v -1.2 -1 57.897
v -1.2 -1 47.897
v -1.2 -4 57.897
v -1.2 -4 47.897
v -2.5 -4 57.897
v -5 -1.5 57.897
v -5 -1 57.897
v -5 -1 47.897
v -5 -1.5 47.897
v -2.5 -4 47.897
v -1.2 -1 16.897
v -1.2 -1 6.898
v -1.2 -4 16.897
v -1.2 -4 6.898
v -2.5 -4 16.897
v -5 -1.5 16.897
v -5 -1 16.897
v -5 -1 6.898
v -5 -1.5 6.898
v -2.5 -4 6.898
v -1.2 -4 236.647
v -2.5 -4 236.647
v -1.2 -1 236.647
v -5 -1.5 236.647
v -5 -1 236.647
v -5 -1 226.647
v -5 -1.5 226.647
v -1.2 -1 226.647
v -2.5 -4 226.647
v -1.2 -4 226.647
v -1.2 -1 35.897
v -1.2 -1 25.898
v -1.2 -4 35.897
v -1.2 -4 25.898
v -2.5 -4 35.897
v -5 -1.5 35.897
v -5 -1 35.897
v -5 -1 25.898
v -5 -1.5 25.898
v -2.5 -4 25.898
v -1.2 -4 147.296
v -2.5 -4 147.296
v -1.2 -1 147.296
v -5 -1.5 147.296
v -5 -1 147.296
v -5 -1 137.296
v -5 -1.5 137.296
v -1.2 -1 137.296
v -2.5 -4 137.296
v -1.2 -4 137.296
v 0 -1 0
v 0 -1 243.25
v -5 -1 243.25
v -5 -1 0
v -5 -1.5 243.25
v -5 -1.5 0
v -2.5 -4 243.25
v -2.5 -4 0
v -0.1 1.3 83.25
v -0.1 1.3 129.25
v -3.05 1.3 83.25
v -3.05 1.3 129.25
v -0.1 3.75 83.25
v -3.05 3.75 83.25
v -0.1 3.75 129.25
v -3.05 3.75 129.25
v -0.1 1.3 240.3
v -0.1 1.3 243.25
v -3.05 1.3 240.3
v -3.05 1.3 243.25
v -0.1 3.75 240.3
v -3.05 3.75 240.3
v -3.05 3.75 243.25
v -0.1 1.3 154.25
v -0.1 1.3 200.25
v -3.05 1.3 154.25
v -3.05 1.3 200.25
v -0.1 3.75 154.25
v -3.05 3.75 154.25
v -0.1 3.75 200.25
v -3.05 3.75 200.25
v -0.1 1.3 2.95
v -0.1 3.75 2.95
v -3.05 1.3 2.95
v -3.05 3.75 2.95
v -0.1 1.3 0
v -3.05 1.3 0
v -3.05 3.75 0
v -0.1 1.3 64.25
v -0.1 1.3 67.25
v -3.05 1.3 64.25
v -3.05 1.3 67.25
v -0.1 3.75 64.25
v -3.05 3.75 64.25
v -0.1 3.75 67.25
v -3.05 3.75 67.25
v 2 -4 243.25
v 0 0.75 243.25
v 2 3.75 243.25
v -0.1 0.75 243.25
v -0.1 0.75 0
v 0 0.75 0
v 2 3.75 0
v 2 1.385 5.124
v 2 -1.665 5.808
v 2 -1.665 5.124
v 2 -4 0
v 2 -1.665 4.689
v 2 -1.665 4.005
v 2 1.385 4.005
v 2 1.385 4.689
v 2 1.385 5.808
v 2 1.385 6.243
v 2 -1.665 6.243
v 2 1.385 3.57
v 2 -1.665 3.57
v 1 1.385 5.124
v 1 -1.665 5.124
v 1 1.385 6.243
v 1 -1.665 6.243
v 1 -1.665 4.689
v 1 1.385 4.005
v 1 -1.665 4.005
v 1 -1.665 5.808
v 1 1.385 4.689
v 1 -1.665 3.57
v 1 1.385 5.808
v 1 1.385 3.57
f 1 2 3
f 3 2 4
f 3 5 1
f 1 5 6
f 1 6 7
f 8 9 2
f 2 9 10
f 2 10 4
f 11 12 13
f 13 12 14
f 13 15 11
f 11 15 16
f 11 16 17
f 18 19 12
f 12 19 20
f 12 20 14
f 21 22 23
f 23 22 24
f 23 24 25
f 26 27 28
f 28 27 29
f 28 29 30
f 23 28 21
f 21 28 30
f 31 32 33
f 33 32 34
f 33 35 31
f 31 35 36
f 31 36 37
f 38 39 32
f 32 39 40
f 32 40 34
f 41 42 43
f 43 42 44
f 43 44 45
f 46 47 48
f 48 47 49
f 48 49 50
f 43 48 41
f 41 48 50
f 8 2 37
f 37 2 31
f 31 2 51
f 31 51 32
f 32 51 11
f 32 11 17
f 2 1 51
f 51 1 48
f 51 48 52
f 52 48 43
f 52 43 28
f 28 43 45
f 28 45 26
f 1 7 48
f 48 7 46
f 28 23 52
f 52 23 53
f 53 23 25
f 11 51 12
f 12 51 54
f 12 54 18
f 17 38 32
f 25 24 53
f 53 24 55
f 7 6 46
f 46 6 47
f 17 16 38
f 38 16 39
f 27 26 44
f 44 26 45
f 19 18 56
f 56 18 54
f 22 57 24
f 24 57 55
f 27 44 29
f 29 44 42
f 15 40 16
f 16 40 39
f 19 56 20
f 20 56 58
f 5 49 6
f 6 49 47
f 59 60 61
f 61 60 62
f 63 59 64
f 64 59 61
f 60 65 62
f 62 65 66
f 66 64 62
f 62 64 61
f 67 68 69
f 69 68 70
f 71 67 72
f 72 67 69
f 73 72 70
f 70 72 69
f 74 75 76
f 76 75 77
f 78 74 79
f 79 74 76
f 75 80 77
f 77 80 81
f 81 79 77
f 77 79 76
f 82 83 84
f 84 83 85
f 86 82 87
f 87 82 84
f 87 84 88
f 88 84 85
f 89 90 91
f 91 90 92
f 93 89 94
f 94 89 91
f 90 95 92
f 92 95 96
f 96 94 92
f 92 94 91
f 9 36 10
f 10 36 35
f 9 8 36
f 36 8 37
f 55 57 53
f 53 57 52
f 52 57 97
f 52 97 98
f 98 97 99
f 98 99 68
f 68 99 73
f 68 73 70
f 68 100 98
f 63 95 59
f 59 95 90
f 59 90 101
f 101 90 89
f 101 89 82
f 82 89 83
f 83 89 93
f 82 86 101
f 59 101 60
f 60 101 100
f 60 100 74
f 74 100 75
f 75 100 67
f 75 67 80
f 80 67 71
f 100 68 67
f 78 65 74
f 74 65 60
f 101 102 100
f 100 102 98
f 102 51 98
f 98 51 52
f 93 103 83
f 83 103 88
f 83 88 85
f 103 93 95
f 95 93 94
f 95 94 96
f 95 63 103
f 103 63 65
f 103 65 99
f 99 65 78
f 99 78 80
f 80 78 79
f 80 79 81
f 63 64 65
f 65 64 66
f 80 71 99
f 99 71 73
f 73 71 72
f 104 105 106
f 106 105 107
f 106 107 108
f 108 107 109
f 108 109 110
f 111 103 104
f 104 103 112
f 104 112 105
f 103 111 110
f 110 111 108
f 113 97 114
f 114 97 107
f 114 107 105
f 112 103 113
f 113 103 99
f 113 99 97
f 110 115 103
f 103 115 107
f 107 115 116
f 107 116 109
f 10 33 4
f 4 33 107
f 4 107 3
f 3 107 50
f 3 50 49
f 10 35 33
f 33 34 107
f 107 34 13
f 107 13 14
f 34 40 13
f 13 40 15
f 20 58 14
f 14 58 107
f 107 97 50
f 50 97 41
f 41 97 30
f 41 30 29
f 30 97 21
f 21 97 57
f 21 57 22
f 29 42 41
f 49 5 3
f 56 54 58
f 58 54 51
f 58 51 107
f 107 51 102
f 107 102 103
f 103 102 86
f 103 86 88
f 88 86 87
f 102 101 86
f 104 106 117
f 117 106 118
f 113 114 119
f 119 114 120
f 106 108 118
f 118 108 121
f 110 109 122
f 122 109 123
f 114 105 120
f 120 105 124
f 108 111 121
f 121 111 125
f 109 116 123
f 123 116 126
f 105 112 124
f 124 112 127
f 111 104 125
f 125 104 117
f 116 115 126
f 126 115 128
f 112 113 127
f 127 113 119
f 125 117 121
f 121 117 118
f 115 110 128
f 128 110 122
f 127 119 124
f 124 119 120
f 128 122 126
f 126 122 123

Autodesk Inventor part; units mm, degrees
ref_plane "YZ Plane" through (0, 0, 0) normal (1, 0, 0) x (0, 1, 0)
ref_plane "XZ Plane" through (0, 0, 0) normal (0, 1, 0) x (-1, 0, 0)
ref_plane "XY Plane" through (0, 0, 0) normal (0, 0, 1) x (1, 0, 0)
sketch "Sketch1" plane through (0, 0, 0) normal (0, 0, 1) x (1, 0, 0)
  line L0 (0, 3.75) -> (2, 3.75)
  line L1 (2, 3.75) -> (2, -4)
  line L2 (2, -4) -> (0, -4)
  line L3 (0, -4) -> (0, 3.75) construction
  line L4 (0, -4) -> (-5, -4)
  line L5 (-5, -4) -> (-5, -1)
  line L6 (-5, -1) -> (0, -1)
  line L7 (0, 3.75) -> (-1, 3.75)
  line L8 (-1, 3.75) -> (-1, 0.75)
  line L9 (-1, 0.75) -> (0, 0.75)
  line L10 (0, 0.75) -> (0, 3.75) construction
  line L11 (0, 0.75) -> (0, -1)
  point P0 (0, 0)
  point P1 (0, -0.125)
  point P2 (1, 3.75)
  dimension "d0" = 4
  dimension "d1" = 2
  dimension "d5" = 5
  dimension "d6" = 1.75
  dimension "d7" = 3
  dimension "d11" = 3
  dimension "d12" = 3
extrude "Extrusion1" add sketch "Sketch1" along normal blind 243.25
sketch "Sketch2" plane through (-1, 0.75, 0) normal (-1, 0, 0) x (0, 0, 1)
  line L0 (0, 3) -> (0, 0) projected
  line L1 (0, 0) -> (243.25, 0) projected
  line L2 (243.25, 3) -> (243.25, 0) projected
  line L3 (0, 3) -> (243.25, 3) projected
  point P0 (0, -0.75)
extrude "Extrusion2" cut sketch "Sketch2" against normal blind 0.9
chamfer "Chamfer1" distance 2.5 angle 45 1 edges at (-5, -4, 121.625)
sketch "Sketch3" plane through (-0.1, 0.75, 0) normal (-1, 0, 0) x (0, 0, 1)
  line L0 (0, 3) -> (243.25, 3) projected
  line L1 (0, 3) -> (2.95, 3)
  line L2 (2.95, 3) -> (2.95, 0.55)
  line L3 (2.95, 0.55) -> (0, 0.55)
  line L4 (0, 0.55) -> (0, 3)
  line L5 (59.8466, 2.85) -> (59.8466, 0.85) construction
  line L6 (243.25, 3) -> (243.25, 0) projected
  line L7 (243.25, 3) -> (240.3, 3)
  line L8 (240.3, 3) -> (240.3, 0.55)
  line L9 (240.3, 0.55) -> (243.25, 0.55)
  line L10 (243.25, 0.55) -> (243.25, 3)
  line L11 (200.25, 3) -> (154.25, 3)
  line L12 (154.25, 3) -> (154.25, 0.55)
  line L13 (154.25, 0.55) -> (200.25, 0.55)
  line L14 (200.25, 0.55) -> (200.25, 3)
  line L15 (129.25, 3) -> (83.25, 3)
  line L16 (83.25, 3) -> (83.25, 0.55)
  line L17 (83.25, 0.55) -> (129.25, 0.55)
  line L18 (129.25, 0.55) -> (129.25, 3)
  line L19 (0, 3) -> (243.25, 3) projected
  line L20 (67.25, 3) -> (64.25, 3)
  line L21 (64.25, 3) -> (64.25, 0.55)
  line L22 (64.25, 0.55) -> (67.25, 0.55)
  line L23 (67.25, 0.55) -> (67.25, 3)
  point P0 (0, -0.75)
  point P1 (59.8466, 3)
  dimension "d18" = 2.45
  dimension "d19" = 2.95
  dimension "d22" = 2.45
  dimension "d23" = 2.95
  dimension "d44" = 43
  dimension "d45" = 160
  dimension "d46" = 114
  dimension "d47" = 89
  dimension "d48" = 176
  dimension "d49" = 179
extrude "Extrusion3" add sketch "Sketch3" along normal blind 2.95
sketch "Sketch4" plane through (2, -4, 0) normal (0, -1, 0) x (1, 0, 0)
  circle A0 centre (-4.4525, -10.6025) radius 0.725 construction
  line L0 (-3.2, -15.005) -> (-3.2, -1) construction
  line L1 (-4.5, 0) -> (0, 0) construction
  line L2 (-4.5, 243.25) -> (0, 243.25) construction
  circle A1 centre (-10.2025, 230.7475) radius 2.55 construction
  circle A2 centre (-10.1275, 141.3958) radius 2.55 construction
  circle A3 centre (-10.2025, 51.9975) radius 2.55 construction
  circle A4 centre (-10.2025, 29.9975) radius 2.55 construction
  circle A5 centre (-10.2025, 10.9975) radius 2.55 construction
  line L3 (-3.2, 6.8975) -> (-7, 6.8975)
  line L4 (-7, 6.8975) -> (-7, 16.8975)
  line L5 (-7, 16.8975) -> (-3.2, 16.8975)
  line L6 (-3.2, 16.8975) -> (-3.2, 6.8975)
  line L7 (-3.2, 25.8975) -> (-7, 25.8975)
  line L8 (-7, 25.8975) -> (-7, 35.8975)
  line L9 (-7, 35.8975) -> (-3.2, 35.8975)
  line L10 (-3.2, 35.8975) -> (-3.2, 25.8975)
  line L11 (-3.2, 47.8975) -> (-7, 47.8975)
  line L12 (-7, 47.8975) -> (-7, 57.8975)
  line L13 (-7, 57.8975) -> (-3.2, 57.8975)
  line L14 (-3.2, 57.8975) -> (-3.2, 47.8975)
  line L15 (-3.2, 137.2957) -> (-7, 137.2957)
  line L16 (-7, 137.2957) -> (-7, 147.2957)
  line L17 (-7, 147.2957) -> (-3.2, 147.2957)
  line L18 (-3.2, 147.2957) -> (-3.2, 137.2957)
  line L19 (-2.1, 243.25) -> (-2.1, 0) projected
  line L20 (-2.1, 236.6475) -> (-2.1, 226.6475)
  circle A6 centre (-10.2025, -8.0025) radius 2.55 construction
  circle A7 centre (-5.5025, -3.6025) radius 0.725 construction
  line L21 (-3.2, -12.1025) -> (-10.2025, -12.1025) construction
  line L22 (-10.2025, -12.1025) -> (-10.2025, -2.1025) construction
  line L23 (-10.2025, -2.1025) -> (-3.2, -2.1025) construction
  line L24 (-7, 243.25) -> (-7, 0) construction
  line L25 (-7, 0) -> (-7, 243.25) projected
  line L26 (-7, 226.6475) -> (-3.2, 226.6475)
  line L27 (-3.2, 226.6475) -> (-3.2, 236.6475)
  line L28 (-3.2, 236.6475) -> (-7, 236.6475)
  line L29 (-7, 236.6475) -> (-7, 226.6475)
  point P0 (-2, 0)
  dimension "d26" = 1.5
  dimension "d27" = 1.5
  dimension "d28" = 4.1
  dimension "d29" = 5.9
  dimension "d30" = 4.1
  dimension "d31" = 5.9
  dimension "d32" = 4.1
  dimension "d33" = 5.9
  dimension "d34" = 4.1
  dimension "d35" = 5.9
  dimension "d36" = 4.1
  dimension "d37" = 5.9
  dimension "d40" = 4.1
  dimension "d41" = 5.9
extrude "Extrusion4" cut sketch "Sketch4" against normal up to surface (3 mm away)
sketch "Sketch5" plane through (2, -4, 0) normal (1, 0, 0) x (0, 0, -1)
  line L0 (-6.5846, 5.3849) -> (-3.2283, 5.3849) construction
  line L1 (-3.2283, 5.3849) -> (-3.2283, 2.3349) construction
  line L2 (-3.2283, 2.3349) -> (-6.5846, 2.3349) construction
  line L3 (-6.5846, 2.3349) -> (-6.5846, 5.3849) construction
  line L4 (-6.2429, 5.3849) -> (-5.8075, 5.3849)
  line L5 (-5.8075, 5.3849) -> (-5.8075, 2.3349)
  line L6 (-5.8075, 2.3349) -> (-6.2429, 2.3349)
  line L7 (-6.2429, 2.3349) -> (-6.2429, 5.3849)
  line L8 (-5.1241, 5.3849) -> (-4.6888, 5.3849)
  line L9 (-4.6888, 5.3849) -> (-4.6888, 2.3349)
  line L10 (-4.6888, 2.3349) -> (-5.1241, 2.3349)
  line L11 (-5.1241, 2.3349) -> (-5.1241, 5.3849)
  line L12 (-4.0053, 5.3849) -> (-3.57, 5.3849)
  line L13 (-3.57, 5.3849) -> (-3.57, 2.3349)
  line L14 (-3.57, 2.3349) -> (-4.0053, 2.3349)
  line L15 (-4.0053, 2.3349) -> (-4.0053, 5.3849)
  point P0 (0, 4)
extrude "Extrusion5" cut sketch "Sketch5" against normal blind 1
equation "\"d22\" = d18"
equation "\"d30\" = d28"
equation "\"d31\" = d29"
equation "\"d32\" = d28"
equation "\"d33\" = d29"
equation "\"d34\" = d28"
equation "\"d35\" = d29"
equation "\"d36\" = d28"
equation "\"d37\" = d29"
equation "\"d40\" = d28"
equation "\"d41\" = d29"
properties part number "Case Rail" material "PET Plastic"
